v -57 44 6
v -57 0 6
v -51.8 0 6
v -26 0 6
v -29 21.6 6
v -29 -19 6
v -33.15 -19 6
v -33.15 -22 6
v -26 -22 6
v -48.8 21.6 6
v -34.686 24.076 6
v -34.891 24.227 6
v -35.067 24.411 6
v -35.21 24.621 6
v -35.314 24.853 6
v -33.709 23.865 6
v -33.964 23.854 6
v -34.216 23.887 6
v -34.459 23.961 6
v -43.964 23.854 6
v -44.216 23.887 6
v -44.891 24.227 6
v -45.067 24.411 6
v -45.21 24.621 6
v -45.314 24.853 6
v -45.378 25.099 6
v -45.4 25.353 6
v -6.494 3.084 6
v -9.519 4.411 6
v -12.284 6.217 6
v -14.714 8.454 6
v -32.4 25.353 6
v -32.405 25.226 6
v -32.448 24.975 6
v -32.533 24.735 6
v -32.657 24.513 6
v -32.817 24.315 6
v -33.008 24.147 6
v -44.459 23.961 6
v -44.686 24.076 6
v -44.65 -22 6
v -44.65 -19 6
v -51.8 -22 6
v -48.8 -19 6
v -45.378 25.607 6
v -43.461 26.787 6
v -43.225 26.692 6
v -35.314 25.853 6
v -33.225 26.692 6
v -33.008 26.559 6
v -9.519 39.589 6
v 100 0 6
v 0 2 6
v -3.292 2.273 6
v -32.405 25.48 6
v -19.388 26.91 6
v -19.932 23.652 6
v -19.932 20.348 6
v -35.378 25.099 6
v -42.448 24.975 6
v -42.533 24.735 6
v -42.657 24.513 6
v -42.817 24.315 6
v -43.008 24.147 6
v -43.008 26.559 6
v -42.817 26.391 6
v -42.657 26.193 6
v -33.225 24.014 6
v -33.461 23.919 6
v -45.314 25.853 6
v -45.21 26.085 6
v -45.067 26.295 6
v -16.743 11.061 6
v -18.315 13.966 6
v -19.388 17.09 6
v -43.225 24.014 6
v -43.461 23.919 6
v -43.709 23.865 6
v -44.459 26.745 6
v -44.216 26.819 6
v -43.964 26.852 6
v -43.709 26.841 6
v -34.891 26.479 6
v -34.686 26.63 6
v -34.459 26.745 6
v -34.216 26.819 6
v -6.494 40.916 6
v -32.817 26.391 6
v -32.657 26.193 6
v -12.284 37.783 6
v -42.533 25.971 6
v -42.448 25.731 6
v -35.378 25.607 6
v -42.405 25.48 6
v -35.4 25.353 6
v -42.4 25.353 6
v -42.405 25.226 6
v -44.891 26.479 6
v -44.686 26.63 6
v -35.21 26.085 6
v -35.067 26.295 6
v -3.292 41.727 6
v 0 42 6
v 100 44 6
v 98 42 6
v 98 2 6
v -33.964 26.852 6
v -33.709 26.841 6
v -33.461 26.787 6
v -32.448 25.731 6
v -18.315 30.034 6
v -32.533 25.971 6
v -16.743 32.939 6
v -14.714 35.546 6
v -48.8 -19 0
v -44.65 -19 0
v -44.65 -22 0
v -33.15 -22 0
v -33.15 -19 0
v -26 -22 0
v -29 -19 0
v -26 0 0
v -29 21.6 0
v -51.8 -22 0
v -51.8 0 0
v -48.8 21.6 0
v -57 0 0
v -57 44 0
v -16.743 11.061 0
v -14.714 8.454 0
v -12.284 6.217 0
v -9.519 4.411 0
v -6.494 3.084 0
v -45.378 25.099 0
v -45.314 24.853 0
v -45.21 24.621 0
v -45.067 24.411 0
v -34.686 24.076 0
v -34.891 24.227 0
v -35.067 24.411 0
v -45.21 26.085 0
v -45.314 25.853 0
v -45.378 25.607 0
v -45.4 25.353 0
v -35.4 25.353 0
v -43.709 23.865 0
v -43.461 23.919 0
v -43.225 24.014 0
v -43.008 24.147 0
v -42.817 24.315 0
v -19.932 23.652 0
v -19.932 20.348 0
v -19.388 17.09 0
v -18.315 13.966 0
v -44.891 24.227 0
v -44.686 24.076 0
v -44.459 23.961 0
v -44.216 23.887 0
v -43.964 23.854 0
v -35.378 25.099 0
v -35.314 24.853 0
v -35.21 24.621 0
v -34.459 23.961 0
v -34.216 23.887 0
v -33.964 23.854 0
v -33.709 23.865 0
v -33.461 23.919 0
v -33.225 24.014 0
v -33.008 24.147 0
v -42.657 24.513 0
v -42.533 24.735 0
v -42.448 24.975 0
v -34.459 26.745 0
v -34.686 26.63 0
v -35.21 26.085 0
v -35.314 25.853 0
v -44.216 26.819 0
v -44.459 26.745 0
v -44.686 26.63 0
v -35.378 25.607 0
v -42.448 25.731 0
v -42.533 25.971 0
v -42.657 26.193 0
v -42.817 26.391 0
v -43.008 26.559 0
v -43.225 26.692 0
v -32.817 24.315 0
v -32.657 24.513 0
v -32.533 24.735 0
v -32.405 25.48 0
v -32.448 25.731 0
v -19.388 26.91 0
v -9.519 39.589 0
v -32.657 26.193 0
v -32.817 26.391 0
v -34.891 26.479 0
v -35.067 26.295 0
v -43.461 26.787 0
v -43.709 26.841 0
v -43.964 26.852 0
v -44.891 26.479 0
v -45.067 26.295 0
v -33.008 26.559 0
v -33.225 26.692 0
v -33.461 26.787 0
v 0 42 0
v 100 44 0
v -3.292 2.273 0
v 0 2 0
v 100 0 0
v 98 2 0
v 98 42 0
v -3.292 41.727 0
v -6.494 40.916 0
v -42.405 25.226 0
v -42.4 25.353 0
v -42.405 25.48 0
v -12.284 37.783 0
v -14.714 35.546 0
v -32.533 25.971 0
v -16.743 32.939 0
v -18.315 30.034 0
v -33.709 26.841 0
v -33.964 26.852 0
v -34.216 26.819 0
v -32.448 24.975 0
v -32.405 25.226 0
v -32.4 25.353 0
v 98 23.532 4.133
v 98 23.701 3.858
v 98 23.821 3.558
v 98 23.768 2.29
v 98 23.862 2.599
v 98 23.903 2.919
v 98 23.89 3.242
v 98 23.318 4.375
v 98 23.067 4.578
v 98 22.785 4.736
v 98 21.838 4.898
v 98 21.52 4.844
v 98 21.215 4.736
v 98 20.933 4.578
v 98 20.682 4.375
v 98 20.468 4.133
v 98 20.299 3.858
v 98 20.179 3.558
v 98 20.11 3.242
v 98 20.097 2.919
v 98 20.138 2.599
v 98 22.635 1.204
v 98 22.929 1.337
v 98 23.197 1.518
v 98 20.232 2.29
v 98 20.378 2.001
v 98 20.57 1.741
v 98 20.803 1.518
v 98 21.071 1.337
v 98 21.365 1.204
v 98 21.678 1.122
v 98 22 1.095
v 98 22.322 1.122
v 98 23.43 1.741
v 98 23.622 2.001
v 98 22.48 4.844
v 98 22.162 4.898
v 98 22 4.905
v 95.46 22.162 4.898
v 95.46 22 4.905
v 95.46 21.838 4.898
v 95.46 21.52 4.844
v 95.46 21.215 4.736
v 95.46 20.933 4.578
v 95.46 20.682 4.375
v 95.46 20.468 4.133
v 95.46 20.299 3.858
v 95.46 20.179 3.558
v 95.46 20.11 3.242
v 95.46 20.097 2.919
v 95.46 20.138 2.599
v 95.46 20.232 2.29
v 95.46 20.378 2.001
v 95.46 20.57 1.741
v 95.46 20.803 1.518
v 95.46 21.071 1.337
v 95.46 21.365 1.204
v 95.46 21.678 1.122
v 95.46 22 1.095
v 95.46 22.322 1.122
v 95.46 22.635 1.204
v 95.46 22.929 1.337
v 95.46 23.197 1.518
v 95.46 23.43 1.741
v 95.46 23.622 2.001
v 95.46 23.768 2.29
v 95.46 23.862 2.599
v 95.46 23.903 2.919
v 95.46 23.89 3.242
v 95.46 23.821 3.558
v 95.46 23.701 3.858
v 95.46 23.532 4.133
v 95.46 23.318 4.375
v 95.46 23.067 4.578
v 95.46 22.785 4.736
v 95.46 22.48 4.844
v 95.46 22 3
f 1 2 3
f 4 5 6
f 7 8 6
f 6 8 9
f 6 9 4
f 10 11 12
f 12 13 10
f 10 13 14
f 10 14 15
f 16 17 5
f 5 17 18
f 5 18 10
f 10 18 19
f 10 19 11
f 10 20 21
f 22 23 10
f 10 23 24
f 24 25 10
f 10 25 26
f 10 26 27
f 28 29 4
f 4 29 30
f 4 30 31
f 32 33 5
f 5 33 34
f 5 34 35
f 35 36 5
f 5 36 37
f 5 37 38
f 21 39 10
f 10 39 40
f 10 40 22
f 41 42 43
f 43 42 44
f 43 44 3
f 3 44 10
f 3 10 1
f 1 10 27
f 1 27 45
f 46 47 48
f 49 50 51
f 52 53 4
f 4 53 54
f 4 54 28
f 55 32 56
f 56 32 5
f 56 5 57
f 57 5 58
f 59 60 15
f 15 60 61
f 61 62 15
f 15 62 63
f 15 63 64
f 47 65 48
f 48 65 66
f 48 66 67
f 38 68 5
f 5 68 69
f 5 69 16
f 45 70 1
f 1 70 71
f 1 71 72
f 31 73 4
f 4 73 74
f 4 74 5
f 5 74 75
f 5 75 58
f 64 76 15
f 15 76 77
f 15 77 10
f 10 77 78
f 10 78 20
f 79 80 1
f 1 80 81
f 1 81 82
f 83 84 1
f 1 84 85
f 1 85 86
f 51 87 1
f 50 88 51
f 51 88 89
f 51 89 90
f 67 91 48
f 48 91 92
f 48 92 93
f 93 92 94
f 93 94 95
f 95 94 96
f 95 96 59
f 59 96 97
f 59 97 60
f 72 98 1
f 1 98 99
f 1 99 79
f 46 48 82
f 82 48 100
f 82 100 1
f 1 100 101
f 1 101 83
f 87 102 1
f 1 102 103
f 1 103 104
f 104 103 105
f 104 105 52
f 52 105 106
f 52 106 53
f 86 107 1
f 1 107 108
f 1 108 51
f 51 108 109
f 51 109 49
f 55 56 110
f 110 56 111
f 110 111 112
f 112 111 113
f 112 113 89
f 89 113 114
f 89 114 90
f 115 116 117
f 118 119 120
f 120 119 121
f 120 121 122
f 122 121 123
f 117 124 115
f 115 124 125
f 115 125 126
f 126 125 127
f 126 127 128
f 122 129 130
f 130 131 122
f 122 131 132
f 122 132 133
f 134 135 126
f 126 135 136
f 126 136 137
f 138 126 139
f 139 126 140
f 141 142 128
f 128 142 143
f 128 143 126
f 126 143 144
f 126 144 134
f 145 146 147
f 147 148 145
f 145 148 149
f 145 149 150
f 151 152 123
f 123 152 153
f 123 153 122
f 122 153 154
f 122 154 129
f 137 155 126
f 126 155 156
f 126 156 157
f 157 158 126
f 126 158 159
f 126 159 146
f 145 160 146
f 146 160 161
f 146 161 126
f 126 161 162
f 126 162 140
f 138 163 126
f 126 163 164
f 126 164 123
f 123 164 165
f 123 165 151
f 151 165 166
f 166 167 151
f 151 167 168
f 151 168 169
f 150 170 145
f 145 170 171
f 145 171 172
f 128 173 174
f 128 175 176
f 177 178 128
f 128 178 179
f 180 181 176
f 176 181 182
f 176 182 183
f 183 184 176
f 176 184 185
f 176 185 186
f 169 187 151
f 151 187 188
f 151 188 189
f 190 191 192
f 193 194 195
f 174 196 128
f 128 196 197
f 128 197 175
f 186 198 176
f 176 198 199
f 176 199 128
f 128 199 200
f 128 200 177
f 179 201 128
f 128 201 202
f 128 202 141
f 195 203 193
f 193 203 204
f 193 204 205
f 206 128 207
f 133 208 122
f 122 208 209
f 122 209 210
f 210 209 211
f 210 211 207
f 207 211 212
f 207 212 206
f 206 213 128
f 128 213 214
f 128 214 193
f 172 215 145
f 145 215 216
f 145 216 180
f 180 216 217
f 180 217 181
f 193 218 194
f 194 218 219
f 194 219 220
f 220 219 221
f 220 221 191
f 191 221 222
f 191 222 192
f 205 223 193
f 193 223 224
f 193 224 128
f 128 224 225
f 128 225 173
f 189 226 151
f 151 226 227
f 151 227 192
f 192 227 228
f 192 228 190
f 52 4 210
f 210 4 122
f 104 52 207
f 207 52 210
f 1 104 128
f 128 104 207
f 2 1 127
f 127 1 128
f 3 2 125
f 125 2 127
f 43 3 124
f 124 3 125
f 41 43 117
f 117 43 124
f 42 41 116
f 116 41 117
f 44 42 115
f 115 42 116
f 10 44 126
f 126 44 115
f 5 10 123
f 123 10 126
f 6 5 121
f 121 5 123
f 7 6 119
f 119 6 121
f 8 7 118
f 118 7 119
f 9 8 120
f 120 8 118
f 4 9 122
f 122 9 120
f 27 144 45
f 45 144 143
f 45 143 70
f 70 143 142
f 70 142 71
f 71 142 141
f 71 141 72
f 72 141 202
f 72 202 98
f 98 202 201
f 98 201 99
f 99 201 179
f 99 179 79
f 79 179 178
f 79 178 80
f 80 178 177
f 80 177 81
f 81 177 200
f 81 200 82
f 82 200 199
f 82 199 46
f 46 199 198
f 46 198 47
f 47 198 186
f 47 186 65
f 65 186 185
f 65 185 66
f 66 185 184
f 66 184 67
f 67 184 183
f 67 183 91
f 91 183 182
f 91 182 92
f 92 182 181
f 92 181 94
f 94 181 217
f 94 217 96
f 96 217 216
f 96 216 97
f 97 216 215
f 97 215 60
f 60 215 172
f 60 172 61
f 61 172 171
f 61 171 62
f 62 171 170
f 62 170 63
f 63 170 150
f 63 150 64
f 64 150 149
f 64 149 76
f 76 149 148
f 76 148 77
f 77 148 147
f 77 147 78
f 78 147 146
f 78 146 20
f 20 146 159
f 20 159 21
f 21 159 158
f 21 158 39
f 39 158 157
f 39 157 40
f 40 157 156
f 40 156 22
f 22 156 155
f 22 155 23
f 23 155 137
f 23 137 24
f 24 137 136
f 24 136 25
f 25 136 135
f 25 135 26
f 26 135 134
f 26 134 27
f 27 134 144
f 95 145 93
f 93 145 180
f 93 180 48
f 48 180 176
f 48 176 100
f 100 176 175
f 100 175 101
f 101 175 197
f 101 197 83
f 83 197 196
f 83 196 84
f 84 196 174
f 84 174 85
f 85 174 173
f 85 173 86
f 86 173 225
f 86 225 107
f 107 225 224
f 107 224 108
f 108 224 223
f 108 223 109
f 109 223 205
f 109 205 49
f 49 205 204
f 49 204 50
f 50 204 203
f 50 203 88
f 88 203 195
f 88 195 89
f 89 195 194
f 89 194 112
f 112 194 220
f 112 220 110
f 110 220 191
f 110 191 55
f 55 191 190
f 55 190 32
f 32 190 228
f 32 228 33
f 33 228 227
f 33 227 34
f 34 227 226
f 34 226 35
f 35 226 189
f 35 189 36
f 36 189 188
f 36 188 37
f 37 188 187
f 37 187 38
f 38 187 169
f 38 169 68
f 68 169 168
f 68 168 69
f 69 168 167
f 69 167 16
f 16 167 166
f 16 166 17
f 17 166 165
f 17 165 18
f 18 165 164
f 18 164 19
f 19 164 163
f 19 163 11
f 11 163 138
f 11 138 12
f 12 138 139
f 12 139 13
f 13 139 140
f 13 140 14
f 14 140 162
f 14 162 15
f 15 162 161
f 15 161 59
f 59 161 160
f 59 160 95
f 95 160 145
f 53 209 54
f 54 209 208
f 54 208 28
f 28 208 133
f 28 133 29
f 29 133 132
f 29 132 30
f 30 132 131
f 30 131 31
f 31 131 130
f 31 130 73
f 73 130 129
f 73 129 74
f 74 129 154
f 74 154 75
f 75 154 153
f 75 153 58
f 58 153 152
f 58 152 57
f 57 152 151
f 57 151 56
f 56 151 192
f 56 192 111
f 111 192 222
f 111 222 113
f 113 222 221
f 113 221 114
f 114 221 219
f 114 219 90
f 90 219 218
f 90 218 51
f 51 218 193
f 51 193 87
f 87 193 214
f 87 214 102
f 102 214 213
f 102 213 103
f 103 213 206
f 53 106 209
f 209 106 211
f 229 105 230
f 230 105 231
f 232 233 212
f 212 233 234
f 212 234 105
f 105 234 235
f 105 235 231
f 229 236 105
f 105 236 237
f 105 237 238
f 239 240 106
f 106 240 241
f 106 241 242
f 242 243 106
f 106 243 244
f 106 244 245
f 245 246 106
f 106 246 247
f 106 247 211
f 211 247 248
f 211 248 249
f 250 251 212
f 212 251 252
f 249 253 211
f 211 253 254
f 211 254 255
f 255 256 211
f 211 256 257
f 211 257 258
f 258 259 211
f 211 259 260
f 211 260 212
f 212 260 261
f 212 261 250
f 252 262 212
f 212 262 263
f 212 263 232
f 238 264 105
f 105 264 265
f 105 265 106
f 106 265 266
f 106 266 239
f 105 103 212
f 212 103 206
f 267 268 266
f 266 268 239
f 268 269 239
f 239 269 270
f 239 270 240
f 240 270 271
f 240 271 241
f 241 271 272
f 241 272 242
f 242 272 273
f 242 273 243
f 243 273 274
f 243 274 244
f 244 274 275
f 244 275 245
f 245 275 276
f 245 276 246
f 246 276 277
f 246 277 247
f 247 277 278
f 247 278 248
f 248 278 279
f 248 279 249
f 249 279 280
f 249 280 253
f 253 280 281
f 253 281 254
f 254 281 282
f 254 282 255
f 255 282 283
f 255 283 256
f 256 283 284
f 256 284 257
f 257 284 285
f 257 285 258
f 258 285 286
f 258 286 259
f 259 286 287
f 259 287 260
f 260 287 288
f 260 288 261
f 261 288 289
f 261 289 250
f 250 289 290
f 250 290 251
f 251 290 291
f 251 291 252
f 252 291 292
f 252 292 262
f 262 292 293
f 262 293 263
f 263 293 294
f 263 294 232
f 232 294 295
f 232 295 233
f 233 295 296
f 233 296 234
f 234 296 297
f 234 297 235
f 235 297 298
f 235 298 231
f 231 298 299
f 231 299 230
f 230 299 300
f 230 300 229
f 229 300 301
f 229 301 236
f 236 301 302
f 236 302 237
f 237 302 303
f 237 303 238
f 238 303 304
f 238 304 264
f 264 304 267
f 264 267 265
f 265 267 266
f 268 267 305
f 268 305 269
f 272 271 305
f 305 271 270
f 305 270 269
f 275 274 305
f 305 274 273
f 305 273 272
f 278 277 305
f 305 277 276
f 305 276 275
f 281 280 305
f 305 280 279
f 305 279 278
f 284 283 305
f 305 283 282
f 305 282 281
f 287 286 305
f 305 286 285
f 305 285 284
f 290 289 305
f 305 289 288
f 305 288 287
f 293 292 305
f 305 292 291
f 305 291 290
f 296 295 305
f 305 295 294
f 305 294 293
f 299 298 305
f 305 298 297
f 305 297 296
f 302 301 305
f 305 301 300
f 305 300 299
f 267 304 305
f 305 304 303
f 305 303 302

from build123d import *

# Parameters (mm, degrees)
SKETCH1_R           = 1.5
BOSS_EXTRUDE1_DEPTH = 6
SKETCH2_R           = 1.905
BOSS_EXTRUDE2_DEPTH = 2.54


with BuildPart() as part:
    # Sketch1 → Boss-Extrude1 (new body)
    with BuildSketch(Plane.XY):
        Polygon((0, 0), (100, 0), (100, 44), (0, 44), (-57, 44), (-57, 0), (-51.8, 0), (-51.8, -22), (-44.65, -22), (-44.65, -19), (-48.8, -19), (-48.8, 21.6), (-29, 21.6), (-29, -19), (-33.15, -19), (-33.15, -22), (-26, -22), (-26, 0), align=None)
        with Locations((-43.9, 25.353)):
            Circle(SKETCH1_R, mode=Mode.SUBTRACT)
        with Locations((-33.9, 25.353)):
            Circle(SKETCH1_R, mode=Mode.SUBTRACT)
        with BuildLine():
            Line((0, 2), (98, 2))
            Line((98, 2), (98, 42))
            Line((98, 42), (0, 42))
            ThreePointArc((0, 42), (-20, 22), (0, 2))
        make_face(mode=Mode.SUBTRACT)
    extrude(amount=BOSS_EXTRUDE1_DEPTH)

    # Sketch2 → Boss-Extrude2 (add)
    with BuildSketch(Plane.ZY.offset(-98)):
        with Locations((3, 22)):
            Circle(SKETCH2_R)
    extrude(amount=BOSS_EXTRUDE2_DEPTH)


solid = part.part
